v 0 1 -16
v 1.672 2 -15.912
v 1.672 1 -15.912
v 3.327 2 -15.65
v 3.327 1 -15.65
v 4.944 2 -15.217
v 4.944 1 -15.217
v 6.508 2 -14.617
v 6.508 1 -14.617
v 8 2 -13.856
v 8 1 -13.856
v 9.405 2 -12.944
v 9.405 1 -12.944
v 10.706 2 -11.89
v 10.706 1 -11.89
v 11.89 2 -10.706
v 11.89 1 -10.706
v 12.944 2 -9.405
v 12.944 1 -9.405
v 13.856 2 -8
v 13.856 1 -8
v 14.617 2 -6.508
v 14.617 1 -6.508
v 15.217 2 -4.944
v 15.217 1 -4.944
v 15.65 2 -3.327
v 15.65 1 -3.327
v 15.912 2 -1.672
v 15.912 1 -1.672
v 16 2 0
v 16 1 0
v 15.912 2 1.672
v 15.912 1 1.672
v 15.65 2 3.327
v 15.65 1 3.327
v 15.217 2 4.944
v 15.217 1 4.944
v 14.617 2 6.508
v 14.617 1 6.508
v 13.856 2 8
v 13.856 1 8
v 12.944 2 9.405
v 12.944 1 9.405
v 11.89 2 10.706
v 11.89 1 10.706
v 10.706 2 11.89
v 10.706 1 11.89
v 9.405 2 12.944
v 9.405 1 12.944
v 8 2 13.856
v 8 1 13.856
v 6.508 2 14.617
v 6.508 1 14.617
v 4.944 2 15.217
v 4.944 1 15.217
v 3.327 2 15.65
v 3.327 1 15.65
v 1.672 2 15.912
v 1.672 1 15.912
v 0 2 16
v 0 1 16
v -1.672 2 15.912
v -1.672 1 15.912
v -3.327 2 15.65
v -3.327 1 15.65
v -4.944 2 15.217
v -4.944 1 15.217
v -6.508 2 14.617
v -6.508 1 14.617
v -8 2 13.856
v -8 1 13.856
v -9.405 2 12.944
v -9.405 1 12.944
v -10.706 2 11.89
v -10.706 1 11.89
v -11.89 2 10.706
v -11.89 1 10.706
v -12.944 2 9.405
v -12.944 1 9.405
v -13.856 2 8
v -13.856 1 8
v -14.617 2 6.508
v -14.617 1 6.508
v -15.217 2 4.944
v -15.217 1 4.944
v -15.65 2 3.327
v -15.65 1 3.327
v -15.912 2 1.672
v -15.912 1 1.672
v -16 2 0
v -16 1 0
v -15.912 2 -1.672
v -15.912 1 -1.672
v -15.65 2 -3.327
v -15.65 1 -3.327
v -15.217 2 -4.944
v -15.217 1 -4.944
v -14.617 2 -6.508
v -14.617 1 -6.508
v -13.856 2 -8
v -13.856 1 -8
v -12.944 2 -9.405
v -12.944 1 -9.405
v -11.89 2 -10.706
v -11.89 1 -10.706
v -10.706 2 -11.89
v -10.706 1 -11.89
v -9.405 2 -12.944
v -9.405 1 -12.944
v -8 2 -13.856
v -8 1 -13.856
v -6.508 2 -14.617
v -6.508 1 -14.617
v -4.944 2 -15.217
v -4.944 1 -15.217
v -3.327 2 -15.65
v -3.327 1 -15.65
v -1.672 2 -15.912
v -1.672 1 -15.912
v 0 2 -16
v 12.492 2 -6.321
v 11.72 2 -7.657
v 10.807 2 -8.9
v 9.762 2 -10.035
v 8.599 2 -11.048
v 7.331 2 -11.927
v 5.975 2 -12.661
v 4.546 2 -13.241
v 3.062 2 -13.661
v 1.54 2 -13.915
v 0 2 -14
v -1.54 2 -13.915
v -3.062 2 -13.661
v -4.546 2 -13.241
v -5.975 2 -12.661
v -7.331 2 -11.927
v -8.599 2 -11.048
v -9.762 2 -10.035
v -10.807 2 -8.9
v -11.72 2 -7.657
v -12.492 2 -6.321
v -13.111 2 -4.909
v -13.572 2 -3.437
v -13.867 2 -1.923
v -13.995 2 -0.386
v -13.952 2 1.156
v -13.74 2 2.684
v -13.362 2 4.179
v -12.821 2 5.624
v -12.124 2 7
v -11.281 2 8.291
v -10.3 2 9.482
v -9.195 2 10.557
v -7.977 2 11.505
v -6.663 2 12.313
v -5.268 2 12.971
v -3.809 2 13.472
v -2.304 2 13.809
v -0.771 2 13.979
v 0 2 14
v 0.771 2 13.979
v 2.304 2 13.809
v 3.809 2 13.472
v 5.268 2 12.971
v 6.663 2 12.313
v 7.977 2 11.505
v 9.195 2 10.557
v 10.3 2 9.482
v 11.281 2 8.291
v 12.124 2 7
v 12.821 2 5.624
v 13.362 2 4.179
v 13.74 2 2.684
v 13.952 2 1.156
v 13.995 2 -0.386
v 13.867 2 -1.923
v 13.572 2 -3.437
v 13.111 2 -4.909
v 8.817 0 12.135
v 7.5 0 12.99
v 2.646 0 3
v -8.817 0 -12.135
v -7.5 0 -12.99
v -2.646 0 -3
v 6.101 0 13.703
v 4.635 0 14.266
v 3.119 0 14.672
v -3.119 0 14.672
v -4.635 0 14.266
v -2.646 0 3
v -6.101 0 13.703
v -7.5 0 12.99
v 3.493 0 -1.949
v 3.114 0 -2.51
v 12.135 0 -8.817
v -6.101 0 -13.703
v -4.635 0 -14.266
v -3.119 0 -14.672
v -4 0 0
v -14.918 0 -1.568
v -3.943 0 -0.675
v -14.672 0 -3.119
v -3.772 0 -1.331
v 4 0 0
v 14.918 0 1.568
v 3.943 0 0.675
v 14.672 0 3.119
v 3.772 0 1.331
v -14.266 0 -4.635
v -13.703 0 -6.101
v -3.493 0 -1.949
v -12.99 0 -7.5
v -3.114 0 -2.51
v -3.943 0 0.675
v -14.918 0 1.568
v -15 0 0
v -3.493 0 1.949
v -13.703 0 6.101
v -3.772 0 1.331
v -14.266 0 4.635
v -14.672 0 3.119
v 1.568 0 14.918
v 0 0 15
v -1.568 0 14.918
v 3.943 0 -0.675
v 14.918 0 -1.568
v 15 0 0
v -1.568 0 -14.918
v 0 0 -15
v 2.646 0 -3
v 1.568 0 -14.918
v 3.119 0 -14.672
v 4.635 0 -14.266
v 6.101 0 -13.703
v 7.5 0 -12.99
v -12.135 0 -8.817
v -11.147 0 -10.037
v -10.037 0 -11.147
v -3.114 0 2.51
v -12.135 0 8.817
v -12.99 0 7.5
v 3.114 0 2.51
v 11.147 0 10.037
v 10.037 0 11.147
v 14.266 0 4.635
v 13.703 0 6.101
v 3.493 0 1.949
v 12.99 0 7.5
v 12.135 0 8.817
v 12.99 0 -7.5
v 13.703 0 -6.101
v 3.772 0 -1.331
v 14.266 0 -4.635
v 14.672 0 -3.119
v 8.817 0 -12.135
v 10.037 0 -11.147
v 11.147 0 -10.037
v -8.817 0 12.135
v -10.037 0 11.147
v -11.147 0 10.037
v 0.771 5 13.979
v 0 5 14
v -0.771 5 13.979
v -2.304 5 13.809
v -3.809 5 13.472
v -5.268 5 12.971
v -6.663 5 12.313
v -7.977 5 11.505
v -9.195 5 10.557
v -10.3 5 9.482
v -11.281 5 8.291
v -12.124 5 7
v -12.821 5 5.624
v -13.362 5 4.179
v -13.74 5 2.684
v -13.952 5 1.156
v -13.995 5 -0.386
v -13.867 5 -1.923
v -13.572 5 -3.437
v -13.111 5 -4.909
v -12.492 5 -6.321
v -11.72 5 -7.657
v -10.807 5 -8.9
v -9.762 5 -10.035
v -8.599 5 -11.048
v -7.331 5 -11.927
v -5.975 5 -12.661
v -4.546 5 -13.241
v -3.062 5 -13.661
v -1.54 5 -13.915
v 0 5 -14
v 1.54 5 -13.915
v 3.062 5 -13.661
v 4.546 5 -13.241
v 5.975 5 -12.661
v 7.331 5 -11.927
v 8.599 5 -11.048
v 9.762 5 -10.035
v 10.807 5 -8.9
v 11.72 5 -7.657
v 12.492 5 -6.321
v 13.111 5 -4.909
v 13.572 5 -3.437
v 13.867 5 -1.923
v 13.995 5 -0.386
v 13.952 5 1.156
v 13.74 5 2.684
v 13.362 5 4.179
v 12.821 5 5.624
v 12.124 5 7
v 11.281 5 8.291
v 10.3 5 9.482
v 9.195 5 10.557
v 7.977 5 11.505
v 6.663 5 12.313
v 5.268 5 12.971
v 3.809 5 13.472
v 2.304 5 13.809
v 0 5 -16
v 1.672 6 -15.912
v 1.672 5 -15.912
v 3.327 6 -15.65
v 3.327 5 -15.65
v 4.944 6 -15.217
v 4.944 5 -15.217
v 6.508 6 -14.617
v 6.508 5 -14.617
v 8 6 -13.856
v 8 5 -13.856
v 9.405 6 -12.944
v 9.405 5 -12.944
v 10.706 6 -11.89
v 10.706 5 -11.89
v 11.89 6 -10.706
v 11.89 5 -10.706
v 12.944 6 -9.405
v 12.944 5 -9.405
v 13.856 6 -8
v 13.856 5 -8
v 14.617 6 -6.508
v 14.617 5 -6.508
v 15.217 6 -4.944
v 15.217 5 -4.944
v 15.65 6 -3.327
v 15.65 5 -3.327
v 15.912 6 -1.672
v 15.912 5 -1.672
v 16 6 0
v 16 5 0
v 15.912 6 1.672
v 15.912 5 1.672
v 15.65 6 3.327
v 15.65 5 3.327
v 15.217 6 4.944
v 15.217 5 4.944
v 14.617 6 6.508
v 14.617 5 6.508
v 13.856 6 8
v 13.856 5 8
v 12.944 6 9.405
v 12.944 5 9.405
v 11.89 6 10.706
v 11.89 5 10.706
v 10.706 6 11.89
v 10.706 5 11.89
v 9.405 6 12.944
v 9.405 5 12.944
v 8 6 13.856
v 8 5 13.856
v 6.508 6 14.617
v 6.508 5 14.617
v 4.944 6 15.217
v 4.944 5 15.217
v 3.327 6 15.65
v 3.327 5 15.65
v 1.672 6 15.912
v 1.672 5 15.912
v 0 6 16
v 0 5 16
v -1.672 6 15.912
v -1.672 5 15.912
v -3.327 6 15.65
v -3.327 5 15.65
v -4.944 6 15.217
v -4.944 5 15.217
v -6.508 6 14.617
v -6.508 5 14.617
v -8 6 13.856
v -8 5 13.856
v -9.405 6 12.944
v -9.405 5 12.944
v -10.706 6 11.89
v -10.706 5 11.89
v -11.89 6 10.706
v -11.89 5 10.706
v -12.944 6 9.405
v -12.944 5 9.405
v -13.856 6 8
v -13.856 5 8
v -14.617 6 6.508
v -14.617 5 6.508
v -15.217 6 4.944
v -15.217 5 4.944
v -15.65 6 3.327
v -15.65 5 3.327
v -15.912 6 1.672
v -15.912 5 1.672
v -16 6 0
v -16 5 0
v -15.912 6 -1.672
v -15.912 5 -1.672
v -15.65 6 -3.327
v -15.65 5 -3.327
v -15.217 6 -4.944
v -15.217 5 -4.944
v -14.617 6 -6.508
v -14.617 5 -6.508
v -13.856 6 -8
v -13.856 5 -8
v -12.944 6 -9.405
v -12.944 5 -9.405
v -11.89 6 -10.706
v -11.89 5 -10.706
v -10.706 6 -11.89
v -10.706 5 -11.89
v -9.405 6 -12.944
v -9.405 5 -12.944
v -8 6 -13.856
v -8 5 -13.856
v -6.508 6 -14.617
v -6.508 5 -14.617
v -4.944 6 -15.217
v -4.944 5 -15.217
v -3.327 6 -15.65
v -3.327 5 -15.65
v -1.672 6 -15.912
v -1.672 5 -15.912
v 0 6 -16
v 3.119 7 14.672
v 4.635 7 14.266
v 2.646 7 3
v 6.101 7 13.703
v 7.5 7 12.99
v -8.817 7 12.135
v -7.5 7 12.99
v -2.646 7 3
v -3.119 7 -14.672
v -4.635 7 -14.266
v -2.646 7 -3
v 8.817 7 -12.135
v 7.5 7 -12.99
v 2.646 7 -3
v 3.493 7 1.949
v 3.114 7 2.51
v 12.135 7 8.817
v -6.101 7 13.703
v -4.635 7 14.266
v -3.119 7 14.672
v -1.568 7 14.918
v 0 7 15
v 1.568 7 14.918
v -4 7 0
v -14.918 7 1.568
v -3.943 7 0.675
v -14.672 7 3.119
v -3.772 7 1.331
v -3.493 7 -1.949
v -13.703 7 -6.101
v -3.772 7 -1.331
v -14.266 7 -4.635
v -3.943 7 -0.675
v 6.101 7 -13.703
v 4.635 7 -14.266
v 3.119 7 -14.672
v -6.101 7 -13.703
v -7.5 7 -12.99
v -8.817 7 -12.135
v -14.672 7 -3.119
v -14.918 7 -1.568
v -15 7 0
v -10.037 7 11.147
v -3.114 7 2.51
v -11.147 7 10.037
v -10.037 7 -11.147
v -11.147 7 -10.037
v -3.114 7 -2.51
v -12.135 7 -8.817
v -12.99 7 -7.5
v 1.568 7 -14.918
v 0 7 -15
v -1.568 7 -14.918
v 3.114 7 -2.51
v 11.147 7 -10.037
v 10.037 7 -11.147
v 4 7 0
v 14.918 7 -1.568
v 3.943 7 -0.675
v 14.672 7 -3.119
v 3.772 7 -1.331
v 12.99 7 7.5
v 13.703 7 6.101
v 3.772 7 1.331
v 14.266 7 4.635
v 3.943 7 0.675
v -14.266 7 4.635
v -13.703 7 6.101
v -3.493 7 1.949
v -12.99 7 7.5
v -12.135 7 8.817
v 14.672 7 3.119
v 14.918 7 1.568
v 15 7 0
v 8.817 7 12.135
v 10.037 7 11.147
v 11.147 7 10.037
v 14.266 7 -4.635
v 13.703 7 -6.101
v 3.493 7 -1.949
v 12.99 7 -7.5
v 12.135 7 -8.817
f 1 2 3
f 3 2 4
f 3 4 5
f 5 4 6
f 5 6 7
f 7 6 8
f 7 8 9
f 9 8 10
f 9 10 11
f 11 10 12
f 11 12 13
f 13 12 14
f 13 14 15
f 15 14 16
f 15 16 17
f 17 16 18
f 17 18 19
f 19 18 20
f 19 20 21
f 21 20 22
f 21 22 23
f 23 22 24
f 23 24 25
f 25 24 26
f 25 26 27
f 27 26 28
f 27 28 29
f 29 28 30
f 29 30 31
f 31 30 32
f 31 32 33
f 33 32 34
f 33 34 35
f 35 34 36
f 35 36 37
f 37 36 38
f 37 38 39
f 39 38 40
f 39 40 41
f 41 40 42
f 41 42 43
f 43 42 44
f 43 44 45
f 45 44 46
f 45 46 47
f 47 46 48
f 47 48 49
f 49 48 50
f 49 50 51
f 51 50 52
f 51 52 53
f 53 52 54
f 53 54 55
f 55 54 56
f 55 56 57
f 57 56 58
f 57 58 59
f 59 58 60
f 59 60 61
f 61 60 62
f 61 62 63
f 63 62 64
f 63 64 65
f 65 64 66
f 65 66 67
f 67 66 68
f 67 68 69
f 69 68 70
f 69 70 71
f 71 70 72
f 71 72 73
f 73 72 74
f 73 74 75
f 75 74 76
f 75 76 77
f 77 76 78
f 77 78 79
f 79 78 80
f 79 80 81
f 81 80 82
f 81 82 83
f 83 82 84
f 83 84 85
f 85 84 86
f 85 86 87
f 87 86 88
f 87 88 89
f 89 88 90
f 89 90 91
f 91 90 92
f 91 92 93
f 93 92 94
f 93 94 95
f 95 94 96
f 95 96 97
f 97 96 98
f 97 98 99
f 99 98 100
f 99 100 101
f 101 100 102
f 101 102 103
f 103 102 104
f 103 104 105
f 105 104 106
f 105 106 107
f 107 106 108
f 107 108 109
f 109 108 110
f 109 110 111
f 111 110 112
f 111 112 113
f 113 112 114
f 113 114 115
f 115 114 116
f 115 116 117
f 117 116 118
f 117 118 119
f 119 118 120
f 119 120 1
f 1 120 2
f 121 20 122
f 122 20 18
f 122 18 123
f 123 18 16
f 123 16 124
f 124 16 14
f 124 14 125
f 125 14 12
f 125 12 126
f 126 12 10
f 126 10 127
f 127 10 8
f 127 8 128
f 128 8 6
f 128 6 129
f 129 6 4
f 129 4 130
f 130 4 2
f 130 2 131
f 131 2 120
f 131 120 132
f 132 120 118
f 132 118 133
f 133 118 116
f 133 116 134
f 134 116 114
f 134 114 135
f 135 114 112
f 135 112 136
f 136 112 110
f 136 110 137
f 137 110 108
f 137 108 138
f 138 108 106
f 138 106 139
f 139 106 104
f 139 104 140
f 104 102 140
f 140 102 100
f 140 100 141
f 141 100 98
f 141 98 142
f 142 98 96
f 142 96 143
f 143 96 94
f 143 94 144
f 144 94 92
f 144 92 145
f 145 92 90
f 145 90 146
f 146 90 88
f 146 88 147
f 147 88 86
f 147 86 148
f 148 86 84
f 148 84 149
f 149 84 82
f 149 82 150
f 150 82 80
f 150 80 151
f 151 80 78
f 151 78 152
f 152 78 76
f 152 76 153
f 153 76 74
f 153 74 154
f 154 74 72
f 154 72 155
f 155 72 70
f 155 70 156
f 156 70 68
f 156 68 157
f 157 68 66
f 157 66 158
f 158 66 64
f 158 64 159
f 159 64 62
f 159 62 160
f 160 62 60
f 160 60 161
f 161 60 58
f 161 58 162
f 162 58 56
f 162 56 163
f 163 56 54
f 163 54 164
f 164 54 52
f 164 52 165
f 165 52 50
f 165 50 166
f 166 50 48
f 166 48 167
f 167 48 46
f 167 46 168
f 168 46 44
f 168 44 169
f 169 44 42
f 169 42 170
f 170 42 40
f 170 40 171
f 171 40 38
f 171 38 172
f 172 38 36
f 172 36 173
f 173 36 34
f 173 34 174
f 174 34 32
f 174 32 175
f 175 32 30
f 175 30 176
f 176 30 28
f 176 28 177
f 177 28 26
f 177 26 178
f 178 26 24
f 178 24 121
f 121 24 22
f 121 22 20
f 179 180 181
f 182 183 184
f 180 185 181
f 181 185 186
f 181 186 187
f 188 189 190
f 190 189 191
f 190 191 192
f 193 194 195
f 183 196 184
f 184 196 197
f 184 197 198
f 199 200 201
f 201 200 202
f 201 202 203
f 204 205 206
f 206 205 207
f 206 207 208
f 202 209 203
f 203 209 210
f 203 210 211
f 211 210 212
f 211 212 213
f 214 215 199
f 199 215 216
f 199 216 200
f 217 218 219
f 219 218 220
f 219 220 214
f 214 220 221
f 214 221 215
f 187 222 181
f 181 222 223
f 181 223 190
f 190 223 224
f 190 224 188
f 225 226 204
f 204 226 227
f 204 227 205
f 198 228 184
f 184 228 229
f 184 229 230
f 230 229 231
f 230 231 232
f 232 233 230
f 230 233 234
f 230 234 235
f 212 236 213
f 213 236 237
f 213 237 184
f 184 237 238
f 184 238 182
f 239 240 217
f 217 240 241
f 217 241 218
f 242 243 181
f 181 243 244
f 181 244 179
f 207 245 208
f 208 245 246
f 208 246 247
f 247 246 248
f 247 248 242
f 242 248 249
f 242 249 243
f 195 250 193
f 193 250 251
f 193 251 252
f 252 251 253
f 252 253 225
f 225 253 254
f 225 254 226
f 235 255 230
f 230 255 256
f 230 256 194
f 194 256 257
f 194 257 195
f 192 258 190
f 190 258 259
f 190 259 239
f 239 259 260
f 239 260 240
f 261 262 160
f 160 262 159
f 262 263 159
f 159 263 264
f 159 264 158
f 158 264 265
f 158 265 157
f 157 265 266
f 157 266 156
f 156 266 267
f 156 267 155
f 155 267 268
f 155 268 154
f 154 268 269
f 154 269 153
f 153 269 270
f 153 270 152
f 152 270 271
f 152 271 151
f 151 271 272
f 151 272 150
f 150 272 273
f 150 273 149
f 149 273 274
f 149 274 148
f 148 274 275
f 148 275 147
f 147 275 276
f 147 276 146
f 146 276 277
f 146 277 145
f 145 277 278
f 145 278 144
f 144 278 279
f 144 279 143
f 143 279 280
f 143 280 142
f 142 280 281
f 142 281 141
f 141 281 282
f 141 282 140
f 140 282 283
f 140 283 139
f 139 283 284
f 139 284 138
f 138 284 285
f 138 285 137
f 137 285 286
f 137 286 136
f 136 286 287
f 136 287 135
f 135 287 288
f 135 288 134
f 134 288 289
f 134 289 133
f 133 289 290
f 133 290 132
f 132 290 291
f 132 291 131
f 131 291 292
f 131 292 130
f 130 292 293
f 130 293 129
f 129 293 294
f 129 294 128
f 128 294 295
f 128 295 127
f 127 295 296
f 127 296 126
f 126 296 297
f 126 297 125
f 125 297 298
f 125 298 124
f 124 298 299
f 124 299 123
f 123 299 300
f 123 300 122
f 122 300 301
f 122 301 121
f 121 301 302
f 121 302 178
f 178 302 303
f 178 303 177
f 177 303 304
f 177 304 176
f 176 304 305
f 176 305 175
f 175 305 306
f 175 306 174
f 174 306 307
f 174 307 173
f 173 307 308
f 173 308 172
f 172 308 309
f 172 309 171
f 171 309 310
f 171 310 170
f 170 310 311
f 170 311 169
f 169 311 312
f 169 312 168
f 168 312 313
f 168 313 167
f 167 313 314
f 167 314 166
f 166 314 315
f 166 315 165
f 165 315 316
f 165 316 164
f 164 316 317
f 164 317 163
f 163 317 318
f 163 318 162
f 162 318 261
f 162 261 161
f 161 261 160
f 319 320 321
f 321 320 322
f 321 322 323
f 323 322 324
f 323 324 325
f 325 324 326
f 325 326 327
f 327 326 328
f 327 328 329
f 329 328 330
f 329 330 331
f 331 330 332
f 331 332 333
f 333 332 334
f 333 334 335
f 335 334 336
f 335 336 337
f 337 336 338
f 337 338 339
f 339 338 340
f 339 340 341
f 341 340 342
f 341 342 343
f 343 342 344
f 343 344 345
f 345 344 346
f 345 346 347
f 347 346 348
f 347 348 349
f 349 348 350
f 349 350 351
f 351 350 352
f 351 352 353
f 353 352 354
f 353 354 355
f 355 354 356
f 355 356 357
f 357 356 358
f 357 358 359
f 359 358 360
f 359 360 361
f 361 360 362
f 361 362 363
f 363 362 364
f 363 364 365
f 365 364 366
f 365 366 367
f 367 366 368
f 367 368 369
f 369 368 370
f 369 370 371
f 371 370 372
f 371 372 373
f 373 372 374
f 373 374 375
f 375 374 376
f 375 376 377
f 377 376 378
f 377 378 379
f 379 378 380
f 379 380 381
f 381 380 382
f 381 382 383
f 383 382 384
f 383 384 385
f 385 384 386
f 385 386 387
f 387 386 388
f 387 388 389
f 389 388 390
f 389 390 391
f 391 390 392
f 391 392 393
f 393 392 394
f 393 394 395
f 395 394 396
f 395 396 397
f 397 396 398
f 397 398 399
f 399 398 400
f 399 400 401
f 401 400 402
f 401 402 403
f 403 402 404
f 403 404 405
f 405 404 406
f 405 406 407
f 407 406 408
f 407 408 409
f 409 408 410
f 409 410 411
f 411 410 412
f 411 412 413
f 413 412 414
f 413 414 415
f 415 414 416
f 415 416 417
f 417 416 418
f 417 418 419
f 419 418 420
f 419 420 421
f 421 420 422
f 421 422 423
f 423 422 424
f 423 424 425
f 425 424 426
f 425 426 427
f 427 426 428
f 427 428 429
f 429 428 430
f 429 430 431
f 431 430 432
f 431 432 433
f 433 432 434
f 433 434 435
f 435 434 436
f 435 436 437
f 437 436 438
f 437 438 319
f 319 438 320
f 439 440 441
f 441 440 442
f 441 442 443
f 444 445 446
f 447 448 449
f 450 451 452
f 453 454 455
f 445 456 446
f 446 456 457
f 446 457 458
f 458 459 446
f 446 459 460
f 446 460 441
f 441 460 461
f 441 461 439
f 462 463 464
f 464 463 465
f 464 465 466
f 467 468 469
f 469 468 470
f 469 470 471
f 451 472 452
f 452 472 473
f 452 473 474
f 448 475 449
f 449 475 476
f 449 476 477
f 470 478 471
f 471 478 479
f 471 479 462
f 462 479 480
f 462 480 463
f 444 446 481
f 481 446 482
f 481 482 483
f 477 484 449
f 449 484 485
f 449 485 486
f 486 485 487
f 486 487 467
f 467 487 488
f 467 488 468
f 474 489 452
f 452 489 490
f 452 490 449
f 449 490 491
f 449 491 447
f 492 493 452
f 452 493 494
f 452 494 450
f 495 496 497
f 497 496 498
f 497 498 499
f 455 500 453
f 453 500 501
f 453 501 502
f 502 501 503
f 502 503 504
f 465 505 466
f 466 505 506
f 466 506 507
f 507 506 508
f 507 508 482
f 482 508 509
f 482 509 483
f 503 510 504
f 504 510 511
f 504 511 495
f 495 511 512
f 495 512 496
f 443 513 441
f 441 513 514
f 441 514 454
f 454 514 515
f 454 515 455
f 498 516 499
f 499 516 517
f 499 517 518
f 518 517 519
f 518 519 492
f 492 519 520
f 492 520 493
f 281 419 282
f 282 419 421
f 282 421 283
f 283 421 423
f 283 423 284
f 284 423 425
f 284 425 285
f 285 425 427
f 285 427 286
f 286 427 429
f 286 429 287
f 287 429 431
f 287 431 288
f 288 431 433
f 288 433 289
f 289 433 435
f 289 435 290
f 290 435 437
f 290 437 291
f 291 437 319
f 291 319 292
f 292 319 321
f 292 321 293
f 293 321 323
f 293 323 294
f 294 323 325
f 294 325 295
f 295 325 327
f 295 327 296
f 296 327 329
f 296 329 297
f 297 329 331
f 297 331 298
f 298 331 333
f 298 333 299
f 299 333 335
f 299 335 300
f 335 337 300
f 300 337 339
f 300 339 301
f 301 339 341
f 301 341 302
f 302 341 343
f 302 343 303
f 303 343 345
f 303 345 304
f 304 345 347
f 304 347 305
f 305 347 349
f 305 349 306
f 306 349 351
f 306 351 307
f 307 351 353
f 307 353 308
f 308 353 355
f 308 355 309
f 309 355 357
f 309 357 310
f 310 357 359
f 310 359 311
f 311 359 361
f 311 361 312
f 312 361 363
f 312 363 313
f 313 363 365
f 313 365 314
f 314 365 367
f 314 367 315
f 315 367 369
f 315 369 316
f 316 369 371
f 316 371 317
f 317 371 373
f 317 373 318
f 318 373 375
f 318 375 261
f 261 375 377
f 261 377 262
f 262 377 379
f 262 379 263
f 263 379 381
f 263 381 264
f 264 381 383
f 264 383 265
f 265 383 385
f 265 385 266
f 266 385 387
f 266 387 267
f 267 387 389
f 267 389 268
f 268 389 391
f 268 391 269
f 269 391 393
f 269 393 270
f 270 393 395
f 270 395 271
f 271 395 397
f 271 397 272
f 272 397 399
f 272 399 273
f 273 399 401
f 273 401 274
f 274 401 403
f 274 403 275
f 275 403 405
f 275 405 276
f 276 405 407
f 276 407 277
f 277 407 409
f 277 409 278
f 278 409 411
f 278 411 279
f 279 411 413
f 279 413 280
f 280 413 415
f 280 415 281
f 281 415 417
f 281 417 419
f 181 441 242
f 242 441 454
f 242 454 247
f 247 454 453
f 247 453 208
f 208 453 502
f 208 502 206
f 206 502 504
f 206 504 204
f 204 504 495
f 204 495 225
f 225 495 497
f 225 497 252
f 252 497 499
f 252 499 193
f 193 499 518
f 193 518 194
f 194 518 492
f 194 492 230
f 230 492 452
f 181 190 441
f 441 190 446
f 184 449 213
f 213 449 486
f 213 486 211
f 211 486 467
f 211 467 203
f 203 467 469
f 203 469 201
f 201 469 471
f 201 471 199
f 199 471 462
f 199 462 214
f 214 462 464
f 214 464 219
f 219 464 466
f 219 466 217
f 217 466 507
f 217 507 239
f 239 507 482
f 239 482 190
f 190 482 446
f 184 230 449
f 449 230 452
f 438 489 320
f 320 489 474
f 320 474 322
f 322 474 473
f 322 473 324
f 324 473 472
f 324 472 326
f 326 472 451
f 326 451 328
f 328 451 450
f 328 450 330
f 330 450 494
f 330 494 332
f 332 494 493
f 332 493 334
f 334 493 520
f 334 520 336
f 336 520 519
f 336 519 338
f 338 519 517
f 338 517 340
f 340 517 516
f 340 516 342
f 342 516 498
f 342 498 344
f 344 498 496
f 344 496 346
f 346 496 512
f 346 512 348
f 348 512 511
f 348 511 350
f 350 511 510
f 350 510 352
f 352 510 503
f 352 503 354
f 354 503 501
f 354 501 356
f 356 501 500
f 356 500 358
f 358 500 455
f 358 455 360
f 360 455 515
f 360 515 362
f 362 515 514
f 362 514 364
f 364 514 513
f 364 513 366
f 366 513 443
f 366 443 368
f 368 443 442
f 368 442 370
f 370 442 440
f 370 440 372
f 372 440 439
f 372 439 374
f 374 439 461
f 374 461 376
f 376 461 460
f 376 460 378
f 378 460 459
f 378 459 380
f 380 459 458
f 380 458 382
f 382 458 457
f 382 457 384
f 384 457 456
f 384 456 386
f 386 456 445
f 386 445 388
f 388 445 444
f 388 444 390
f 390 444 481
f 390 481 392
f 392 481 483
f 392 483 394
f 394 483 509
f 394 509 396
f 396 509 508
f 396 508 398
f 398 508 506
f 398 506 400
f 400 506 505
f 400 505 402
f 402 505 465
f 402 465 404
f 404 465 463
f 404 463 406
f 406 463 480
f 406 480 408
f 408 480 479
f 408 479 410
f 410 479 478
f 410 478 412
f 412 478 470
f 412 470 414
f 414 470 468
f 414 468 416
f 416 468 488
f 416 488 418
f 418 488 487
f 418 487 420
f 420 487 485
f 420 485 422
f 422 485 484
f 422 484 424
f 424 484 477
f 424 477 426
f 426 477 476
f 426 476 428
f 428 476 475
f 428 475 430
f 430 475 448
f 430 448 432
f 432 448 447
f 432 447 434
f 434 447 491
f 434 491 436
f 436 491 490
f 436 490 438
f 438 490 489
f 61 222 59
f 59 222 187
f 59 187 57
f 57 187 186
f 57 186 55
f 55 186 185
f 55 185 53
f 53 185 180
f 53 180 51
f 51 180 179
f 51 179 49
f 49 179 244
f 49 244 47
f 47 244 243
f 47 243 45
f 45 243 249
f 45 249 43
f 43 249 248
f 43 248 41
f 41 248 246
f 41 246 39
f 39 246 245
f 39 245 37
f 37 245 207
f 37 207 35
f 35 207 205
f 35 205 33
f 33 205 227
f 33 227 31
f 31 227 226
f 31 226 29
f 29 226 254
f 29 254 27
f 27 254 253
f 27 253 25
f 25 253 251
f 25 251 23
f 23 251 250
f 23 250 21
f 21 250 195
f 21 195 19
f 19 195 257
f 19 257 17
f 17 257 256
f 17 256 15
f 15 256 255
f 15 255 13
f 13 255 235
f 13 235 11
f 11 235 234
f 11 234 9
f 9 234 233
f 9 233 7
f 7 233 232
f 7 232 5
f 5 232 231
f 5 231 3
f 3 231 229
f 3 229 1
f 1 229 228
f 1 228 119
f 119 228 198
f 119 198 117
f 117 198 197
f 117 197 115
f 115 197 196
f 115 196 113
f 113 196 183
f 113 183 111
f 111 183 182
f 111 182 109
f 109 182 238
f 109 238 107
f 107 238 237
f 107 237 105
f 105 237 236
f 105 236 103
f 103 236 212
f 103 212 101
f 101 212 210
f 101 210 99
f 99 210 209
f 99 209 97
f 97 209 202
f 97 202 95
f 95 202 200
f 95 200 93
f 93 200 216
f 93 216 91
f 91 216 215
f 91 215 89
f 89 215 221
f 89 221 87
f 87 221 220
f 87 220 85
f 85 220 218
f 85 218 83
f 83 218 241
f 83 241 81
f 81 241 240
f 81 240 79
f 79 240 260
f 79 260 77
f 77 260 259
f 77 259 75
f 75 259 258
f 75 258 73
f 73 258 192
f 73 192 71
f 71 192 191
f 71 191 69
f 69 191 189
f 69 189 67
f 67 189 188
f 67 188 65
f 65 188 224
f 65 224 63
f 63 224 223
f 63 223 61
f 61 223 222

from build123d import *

# Parameters (mm, degrees)
CROQUIS1_R              = 16
SALIENTE_EXTRUIR1_DEPTH = 2
CROQUIS4_R              = 14
SALIENTE_EXTRUIR2_DEPTH = 3
CROQUIS5_R              = 16
SALIENTE_EXTRUIR3_DEPTH = 2
CORTAR_EXTRUIR1_DEPTH   = 24.685438565
CHAFL_N1_SIZE           = 1
CHAFL_N2_SIZE           = 1


with BuildPart() as part:
    # Croquis1 → Saliente-Extruir1 (new body)
    with BuildSketch(Plane(origin=(0, 0, 0), x_dir=(1, 0, 0), z_dir=(0, 1, 0))):
        with Locations(Location((0, 0, 0), (0, 0, 270))):
            Circle(CROQUIS1_R)
    extrude(amount=SALIENTE_EXTRUIR1_DEPTH)

    # Croquis4 → Saliente-Extruir2 (add)
    with BuildSketch(Plane(origin=(0, 2, 0), x_dir=(1, 0, 0), z_dir=(0, 1, 0))):
        with Locations(Location((0, 0, 0), (0, 0, 270))):
            Circle(CROQUIS4_R)
    extrude(amount=SALIENTE_EXTRUIR2_DEPTH)

    # Croquis5 → Saliente-Extruir3 (add)
    with BuildSketch(Plane(origin=(0, 5, 0), x_dir=(1, 0, 0), z_dir=(0, 1, 0))):
        with Locations(Location((0, 0, 0), (0, 0, 270))):
            Circle(CROQUIS5_R)
    extrude(amount=SALIENTE_EXTRUIR3_DEPTH)

    # Croquis6 → Cortar-Extruir1 (cut, through all)
    with BuildSketch(Plane(origin=(0, 7, 0), x_dir=(1, 0, 0), z_dir=(0, 1, 0))):
        with BuildLine():
            Line((-2.645751311, -3), (2.645751311, -3))
            ThreePointArc((2.645751311, -3), (4, 0), (2.645751311, 3))
            Line((2.645751311, 3), (-2.645751311, 3))
            ThreePointArc((-2.645751311, 3), (-4, 0), (-2.645751311, -3))
        make_face()
    extrude(amount=-CORTAR_EXTRUIR1_DEPTH, mode=Mode.SUBTRACT)

    # Chaflán1
    chafl_n1_edges = [part.edges().sort_by_distance(p)[0] for p in [
        (0, 7, -16),
    ]]
    chamfer(chafl_n1_edges, length=CHAFL_N1_SIZE)

    # Chaflán2
    chafl_n2_edges = [part.edges().sort_by_distance(p)[0] for p in [
        (0, 0, -16),
    ]]
    chamfer(chafl_n2_edges, length=CHAFL_N2_SIZE)


solid = part.part
